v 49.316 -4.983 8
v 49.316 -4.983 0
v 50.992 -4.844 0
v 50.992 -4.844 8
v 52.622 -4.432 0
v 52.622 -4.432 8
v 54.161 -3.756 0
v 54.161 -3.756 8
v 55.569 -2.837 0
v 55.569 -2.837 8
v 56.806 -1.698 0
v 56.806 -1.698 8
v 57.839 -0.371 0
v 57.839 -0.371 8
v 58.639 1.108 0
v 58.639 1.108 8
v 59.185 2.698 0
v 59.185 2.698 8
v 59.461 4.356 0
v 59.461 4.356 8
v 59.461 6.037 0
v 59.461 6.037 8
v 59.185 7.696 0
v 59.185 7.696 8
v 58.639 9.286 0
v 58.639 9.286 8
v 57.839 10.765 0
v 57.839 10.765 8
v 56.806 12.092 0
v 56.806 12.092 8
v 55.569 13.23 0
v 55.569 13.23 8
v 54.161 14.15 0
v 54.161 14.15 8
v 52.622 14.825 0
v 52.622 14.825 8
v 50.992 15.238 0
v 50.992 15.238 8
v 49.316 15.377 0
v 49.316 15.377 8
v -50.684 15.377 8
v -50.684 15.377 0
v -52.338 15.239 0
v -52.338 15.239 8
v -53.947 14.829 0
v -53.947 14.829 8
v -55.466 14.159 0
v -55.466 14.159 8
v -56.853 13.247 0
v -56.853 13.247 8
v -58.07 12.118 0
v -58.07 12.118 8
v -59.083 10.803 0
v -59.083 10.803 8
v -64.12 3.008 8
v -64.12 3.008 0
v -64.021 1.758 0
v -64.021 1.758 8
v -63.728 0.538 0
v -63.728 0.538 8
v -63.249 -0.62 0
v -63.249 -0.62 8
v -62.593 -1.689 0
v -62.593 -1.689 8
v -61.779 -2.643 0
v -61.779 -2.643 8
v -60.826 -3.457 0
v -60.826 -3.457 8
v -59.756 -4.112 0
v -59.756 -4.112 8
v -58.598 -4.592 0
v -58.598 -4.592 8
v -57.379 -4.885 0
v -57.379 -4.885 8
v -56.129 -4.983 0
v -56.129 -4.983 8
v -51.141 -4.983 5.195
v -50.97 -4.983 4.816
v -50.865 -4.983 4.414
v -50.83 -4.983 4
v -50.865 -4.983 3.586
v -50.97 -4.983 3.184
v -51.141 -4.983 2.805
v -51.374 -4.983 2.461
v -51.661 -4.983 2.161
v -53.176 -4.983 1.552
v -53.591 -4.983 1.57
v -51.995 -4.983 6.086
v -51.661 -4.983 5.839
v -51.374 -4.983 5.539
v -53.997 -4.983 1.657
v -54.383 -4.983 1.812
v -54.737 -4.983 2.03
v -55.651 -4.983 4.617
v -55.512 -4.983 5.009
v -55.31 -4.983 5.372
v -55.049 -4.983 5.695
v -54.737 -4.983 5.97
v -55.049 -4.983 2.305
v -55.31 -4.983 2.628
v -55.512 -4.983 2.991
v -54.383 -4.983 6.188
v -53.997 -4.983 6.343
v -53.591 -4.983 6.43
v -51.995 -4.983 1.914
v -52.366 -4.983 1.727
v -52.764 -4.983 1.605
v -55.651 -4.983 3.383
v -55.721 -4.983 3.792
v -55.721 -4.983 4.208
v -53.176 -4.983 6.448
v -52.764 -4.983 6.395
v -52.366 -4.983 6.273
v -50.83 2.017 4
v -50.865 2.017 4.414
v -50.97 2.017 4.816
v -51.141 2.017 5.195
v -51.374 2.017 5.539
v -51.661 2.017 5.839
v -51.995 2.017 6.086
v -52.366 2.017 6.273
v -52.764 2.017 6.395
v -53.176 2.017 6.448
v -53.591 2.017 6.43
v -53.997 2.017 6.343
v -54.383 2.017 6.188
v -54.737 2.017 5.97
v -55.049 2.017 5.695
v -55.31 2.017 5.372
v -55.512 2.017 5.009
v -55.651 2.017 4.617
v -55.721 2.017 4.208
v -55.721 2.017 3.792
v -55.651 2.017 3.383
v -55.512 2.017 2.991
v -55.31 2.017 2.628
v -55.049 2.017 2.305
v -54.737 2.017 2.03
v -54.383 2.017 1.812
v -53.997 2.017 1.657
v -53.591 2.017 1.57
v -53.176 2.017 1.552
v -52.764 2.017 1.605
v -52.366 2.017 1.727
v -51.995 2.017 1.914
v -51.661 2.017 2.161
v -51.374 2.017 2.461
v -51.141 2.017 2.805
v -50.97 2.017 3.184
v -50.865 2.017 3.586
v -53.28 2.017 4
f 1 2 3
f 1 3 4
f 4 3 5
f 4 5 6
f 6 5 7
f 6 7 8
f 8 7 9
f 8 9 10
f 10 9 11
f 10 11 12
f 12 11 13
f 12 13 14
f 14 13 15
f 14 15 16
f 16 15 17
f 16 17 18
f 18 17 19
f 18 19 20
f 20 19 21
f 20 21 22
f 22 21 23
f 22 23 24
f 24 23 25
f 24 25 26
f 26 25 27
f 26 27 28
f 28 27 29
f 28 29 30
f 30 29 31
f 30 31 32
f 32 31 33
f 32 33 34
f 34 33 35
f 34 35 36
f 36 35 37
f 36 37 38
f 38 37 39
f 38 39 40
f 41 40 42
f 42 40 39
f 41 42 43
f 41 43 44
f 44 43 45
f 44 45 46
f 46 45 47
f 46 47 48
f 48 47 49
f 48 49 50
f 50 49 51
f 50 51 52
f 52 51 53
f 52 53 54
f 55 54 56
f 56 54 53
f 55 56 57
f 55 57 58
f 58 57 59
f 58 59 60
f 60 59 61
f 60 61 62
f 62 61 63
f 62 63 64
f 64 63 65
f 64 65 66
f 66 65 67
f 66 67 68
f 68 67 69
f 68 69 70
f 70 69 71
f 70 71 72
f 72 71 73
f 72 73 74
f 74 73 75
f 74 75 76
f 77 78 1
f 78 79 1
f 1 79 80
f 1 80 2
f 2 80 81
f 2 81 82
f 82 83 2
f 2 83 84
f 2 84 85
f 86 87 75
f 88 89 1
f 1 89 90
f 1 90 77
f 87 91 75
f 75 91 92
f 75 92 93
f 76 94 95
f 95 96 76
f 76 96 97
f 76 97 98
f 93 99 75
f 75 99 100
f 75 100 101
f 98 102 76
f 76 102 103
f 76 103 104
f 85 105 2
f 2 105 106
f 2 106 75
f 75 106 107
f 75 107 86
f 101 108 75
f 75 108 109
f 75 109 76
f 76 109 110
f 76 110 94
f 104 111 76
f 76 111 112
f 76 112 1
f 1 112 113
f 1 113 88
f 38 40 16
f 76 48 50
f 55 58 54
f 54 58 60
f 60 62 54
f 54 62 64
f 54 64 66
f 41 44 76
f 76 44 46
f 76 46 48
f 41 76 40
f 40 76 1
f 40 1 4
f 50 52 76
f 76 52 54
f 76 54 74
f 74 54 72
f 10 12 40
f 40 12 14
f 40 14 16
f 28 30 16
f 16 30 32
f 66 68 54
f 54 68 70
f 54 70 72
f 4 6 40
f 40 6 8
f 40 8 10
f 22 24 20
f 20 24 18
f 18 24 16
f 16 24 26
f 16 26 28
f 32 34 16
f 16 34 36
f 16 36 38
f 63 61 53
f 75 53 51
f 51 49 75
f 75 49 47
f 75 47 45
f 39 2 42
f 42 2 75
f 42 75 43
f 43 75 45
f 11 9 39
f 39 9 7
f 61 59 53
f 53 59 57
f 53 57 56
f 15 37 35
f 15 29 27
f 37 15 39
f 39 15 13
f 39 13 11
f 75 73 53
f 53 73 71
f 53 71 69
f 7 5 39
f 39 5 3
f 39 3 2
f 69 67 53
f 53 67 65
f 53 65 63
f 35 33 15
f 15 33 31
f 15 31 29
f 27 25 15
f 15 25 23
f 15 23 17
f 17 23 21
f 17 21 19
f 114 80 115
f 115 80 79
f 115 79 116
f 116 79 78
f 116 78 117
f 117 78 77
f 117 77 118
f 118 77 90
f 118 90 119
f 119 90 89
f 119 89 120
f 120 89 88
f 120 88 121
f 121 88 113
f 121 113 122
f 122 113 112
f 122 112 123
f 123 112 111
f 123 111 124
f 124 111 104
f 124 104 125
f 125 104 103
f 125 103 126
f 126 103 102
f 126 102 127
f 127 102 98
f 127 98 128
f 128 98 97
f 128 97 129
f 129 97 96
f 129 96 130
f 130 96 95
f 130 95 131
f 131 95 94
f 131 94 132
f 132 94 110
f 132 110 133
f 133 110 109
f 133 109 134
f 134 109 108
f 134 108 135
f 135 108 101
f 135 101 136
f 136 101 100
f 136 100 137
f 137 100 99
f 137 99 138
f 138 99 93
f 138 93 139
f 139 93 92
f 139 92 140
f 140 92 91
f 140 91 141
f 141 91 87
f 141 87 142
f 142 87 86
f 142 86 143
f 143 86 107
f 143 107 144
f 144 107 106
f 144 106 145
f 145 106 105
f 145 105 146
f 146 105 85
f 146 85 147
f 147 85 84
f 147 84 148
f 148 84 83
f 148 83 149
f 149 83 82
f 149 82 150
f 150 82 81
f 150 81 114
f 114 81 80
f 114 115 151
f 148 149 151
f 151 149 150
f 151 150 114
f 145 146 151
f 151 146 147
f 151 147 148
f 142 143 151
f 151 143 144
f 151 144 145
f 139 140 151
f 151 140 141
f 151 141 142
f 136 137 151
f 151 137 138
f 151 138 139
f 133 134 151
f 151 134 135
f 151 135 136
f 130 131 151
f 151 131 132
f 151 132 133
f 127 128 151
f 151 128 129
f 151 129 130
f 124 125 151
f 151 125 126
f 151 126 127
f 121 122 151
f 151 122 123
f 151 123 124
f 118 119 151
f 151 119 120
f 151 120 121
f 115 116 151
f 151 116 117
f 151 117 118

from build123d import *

# Parameters (mm, degrees)
BOSS_EXTRUDE1_DEPTH = 8
SKETCH4_R           = 2.55
CUT_EXTRUDE1_DEPTH  = 7


with BuildPart() as part:
    # Sketch2 → Boss-Extrude1 (new body)
    with BuildSketch(Plane.XY):
        with BuildLine():
            Line((-50.683757693, 15.376803881), (49.316242307, 15.376803881))
            ThreePointArc((49.316242307, 15.376803881), (59.496208487, 5.196837701), (49.316242307, -4.98312848))
            Line((49.316242307, -4.98312848), (-56.12878489, -4.98312848))
            ThreePointArc((-56.12878489, -4.98312848), (-61.779081531, -2.642698979), (-64.119511032, 3.007597662))
            Line((-64.119511032, 3.007597662), (-59.08344563, 10.803150955))
            ThreePointArc((-59.08344563, 10.803150955), (-55.465835132, 14.15927138), (-50.683757693, 15.376803881))
        make_face()
    extrude(amount=BOSS_EXTRUDE1_DEPTH)

    # Sketch4 → Cut-Extrude1 (cut)
    with BuildSketch(Plane.XZ.offset(4.98312848)):
        with Locations((-53.279822917, 4)):
            Circle(SKETCH4_R)
    extrude(amount=-CUT_EXTRUDE1_DEPTH, mode=Mode.SUBTRACT)


solid = part.part
